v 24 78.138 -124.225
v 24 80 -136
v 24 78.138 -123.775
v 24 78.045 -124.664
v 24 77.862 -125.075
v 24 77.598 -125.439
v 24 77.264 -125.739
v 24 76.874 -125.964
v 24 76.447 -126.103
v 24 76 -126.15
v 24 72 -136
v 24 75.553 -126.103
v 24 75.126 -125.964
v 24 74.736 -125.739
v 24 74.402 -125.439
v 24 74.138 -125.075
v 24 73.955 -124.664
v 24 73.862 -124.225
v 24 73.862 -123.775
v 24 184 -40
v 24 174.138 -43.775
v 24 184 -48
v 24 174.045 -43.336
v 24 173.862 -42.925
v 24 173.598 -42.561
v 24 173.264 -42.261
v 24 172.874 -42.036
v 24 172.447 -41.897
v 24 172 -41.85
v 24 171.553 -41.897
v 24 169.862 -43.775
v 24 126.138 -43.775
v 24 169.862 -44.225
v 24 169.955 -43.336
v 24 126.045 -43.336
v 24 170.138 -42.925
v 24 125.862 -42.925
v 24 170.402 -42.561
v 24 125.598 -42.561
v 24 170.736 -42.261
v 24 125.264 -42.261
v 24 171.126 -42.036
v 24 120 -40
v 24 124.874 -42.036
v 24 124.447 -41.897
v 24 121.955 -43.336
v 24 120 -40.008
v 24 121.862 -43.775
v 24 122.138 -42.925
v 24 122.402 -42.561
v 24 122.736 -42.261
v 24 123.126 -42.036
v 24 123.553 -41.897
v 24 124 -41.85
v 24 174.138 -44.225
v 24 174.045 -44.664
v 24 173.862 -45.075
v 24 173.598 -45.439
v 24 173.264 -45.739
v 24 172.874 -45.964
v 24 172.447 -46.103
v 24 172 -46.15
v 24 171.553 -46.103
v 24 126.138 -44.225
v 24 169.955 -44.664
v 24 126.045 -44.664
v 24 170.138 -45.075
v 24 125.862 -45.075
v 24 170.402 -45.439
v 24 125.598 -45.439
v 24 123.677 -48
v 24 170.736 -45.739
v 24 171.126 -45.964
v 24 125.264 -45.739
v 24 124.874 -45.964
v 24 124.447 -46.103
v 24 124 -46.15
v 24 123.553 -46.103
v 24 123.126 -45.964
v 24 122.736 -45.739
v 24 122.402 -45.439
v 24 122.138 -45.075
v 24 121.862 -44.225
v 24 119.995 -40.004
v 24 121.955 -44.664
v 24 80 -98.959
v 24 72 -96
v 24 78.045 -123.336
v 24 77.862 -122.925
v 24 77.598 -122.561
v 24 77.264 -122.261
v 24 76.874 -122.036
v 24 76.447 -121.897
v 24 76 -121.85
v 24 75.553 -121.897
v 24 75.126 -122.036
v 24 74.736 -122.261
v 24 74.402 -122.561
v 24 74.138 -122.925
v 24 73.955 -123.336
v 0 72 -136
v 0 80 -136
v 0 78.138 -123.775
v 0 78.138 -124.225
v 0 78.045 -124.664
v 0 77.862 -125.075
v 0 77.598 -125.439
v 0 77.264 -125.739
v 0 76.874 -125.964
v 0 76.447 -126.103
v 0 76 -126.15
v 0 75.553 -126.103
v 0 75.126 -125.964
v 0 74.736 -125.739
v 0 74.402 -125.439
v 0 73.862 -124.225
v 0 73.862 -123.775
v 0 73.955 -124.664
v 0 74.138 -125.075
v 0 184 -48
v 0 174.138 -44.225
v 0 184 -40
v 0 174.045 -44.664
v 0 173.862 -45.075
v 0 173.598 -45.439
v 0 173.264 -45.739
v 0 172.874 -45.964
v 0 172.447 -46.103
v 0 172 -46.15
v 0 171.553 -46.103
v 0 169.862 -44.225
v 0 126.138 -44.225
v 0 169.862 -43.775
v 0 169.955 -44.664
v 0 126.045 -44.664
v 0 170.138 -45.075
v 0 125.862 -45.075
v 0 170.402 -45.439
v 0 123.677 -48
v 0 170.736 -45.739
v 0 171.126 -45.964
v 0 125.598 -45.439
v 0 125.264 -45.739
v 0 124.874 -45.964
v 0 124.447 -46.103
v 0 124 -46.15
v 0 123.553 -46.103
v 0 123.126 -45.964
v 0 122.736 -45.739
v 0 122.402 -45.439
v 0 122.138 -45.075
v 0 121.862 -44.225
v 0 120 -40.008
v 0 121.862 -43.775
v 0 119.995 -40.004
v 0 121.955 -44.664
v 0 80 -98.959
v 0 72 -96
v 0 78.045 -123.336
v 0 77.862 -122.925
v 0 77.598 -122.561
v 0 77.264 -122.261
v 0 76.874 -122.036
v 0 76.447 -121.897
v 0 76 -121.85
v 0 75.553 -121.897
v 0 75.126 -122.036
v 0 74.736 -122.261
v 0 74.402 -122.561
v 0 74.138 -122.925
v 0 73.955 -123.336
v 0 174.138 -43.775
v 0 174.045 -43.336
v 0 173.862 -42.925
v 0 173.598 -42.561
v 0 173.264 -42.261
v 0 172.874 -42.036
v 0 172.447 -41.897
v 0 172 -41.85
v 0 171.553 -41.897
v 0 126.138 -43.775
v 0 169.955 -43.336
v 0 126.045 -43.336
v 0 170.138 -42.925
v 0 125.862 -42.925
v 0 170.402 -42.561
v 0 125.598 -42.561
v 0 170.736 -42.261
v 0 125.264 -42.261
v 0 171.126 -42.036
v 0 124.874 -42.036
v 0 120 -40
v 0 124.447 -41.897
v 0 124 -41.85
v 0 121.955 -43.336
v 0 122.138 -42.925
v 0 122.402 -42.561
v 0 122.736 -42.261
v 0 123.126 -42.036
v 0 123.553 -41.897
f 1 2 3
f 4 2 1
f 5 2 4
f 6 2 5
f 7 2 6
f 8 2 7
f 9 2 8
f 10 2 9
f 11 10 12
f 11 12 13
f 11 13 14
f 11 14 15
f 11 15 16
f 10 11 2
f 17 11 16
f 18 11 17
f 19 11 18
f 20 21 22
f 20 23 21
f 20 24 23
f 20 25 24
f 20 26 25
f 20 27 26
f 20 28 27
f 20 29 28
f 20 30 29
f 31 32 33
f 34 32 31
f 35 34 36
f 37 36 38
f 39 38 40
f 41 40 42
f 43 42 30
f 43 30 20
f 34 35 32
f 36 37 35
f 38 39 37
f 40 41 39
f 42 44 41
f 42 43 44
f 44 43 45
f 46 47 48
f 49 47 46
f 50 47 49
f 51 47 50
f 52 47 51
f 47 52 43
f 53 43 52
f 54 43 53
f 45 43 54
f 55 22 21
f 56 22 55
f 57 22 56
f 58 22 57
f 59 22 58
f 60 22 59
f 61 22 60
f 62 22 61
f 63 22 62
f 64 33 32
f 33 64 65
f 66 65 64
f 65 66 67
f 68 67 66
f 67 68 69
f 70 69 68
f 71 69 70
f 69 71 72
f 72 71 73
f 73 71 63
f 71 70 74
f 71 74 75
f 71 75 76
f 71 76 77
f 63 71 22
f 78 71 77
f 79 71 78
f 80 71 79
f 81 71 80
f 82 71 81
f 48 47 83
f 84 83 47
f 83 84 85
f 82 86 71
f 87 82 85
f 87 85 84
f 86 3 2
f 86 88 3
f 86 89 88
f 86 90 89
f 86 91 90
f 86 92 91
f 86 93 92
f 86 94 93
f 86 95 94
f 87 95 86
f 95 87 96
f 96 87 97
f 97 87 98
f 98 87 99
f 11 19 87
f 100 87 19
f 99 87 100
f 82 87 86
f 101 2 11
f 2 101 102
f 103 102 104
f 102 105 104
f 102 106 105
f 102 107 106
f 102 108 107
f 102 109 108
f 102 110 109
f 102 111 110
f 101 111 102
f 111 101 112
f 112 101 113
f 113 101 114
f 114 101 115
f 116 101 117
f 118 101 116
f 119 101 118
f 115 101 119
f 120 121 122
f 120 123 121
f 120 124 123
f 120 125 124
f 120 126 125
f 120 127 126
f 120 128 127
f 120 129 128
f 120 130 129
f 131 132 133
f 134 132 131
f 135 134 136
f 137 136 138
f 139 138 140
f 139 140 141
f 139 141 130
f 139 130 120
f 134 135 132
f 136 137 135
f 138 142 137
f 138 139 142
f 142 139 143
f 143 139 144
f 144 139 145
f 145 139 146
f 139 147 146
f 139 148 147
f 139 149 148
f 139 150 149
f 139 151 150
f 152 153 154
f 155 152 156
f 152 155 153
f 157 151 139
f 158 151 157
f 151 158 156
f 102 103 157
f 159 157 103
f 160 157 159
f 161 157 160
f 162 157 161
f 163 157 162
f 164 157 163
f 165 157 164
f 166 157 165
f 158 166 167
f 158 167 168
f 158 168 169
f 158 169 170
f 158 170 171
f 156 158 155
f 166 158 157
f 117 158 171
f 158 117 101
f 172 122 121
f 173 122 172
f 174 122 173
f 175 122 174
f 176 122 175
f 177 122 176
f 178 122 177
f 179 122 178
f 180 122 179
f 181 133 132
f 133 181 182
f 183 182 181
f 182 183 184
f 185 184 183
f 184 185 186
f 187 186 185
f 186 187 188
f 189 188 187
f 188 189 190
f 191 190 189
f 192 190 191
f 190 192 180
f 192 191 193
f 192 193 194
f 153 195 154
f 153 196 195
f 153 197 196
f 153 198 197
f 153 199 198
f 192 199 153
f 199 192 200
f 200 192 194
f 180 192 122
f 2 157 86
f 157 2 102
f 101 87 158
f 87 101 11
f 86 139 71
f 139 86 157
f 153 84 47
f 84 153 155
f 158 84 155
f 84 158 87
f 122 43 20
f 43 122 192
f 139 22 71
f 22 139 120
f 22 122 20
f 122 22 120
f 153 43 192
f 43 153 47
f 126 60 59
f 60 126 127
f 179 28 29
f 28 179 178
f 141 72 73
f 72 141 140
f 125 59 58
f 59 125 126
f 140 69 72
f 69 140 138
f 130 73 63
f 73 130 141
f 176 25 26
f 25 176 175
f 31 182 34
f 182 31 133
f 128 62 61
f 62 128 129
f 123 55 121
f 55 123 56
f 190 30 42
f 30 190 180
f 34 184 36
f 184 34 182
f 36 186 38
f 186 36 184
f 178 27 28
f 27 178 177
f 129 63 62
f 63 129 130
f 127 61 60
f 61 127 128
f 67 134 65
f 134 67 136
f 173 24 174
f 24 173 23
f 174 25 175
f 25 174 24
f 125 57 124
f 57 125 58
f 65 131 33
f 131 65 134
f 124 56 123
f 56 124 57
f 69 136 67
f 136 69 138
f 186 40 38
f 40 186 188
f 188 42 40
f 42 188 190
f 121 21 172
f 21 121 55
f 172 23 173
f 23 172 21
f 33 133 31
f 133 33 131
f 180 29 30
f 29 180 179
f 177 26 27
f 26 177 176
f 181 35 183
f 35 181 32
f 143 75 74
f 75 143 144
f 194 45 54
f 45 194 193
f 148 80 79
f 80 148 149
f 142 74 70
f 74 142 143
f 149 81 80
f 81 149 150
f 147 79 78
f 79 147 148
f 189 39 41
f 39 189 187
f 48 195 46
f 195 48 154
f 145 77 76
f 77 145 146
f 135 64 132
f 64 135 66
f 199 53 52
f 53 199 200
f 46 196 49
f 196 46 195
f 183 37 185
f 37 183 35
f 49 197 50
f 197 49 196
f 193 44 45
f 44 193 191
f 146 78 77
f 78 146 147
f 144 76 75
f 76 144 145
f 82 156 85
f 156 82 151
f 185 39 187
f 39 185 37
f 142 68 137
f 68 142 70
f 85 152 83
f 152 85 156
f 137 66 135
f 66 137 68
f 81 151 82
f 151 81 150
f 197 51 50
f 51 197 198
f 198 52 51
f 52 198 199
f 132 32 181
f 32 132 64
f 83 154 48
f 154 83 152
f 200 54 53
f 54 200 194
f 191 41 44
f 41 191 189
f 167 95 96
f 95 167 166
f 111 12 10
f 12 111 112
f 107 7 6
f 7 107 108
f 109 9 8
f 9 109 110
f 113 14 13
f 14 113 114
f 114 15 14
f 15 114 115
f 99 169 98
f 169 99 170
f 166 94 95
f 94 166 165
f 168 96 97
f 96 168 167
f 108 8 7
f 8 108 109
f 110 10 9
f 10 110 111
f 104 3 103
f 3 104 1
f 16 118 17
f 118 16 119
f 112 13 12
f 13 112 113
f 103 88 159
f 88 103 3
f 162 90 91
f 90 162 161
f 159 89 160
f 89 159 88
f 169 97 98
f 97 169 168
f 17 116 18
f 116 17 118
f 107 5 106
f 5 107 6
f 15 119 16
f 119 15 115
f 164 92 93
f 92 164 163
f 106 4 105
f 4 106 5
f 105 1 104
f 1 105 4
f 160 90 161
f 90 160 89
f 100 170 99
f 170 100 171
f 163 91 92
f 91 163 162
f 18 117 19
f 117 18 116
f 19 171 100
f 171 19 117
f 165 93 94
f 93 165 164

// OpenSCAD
// top piece
difference() {
union() {
    // bottom
    translate([0,72,-136])
    cube([24,8,40]);
    
    // angle piece
    translate([0,72,-96])
    rotate([319.4,0,0])
    cube([24,8,73.75]);
    
    // top right
    translate([0,120,-48])
    cube([24,64,8]);
}
    // top right hole
    translate([-4,172,-44])
    rotate([0,90,0])
    cylinder(r=2.15,60, $fn=30);

    // middle hole
    translate([-4,124,-44])
    rotate([0,90,0])
    cylinder(r=2.15,60, $fn=30);

    // bottom hole
    translate([-4,76,-124])
    rotate([0,90,0])
    cylinder(r=2.15,60, $fn=30);
}
